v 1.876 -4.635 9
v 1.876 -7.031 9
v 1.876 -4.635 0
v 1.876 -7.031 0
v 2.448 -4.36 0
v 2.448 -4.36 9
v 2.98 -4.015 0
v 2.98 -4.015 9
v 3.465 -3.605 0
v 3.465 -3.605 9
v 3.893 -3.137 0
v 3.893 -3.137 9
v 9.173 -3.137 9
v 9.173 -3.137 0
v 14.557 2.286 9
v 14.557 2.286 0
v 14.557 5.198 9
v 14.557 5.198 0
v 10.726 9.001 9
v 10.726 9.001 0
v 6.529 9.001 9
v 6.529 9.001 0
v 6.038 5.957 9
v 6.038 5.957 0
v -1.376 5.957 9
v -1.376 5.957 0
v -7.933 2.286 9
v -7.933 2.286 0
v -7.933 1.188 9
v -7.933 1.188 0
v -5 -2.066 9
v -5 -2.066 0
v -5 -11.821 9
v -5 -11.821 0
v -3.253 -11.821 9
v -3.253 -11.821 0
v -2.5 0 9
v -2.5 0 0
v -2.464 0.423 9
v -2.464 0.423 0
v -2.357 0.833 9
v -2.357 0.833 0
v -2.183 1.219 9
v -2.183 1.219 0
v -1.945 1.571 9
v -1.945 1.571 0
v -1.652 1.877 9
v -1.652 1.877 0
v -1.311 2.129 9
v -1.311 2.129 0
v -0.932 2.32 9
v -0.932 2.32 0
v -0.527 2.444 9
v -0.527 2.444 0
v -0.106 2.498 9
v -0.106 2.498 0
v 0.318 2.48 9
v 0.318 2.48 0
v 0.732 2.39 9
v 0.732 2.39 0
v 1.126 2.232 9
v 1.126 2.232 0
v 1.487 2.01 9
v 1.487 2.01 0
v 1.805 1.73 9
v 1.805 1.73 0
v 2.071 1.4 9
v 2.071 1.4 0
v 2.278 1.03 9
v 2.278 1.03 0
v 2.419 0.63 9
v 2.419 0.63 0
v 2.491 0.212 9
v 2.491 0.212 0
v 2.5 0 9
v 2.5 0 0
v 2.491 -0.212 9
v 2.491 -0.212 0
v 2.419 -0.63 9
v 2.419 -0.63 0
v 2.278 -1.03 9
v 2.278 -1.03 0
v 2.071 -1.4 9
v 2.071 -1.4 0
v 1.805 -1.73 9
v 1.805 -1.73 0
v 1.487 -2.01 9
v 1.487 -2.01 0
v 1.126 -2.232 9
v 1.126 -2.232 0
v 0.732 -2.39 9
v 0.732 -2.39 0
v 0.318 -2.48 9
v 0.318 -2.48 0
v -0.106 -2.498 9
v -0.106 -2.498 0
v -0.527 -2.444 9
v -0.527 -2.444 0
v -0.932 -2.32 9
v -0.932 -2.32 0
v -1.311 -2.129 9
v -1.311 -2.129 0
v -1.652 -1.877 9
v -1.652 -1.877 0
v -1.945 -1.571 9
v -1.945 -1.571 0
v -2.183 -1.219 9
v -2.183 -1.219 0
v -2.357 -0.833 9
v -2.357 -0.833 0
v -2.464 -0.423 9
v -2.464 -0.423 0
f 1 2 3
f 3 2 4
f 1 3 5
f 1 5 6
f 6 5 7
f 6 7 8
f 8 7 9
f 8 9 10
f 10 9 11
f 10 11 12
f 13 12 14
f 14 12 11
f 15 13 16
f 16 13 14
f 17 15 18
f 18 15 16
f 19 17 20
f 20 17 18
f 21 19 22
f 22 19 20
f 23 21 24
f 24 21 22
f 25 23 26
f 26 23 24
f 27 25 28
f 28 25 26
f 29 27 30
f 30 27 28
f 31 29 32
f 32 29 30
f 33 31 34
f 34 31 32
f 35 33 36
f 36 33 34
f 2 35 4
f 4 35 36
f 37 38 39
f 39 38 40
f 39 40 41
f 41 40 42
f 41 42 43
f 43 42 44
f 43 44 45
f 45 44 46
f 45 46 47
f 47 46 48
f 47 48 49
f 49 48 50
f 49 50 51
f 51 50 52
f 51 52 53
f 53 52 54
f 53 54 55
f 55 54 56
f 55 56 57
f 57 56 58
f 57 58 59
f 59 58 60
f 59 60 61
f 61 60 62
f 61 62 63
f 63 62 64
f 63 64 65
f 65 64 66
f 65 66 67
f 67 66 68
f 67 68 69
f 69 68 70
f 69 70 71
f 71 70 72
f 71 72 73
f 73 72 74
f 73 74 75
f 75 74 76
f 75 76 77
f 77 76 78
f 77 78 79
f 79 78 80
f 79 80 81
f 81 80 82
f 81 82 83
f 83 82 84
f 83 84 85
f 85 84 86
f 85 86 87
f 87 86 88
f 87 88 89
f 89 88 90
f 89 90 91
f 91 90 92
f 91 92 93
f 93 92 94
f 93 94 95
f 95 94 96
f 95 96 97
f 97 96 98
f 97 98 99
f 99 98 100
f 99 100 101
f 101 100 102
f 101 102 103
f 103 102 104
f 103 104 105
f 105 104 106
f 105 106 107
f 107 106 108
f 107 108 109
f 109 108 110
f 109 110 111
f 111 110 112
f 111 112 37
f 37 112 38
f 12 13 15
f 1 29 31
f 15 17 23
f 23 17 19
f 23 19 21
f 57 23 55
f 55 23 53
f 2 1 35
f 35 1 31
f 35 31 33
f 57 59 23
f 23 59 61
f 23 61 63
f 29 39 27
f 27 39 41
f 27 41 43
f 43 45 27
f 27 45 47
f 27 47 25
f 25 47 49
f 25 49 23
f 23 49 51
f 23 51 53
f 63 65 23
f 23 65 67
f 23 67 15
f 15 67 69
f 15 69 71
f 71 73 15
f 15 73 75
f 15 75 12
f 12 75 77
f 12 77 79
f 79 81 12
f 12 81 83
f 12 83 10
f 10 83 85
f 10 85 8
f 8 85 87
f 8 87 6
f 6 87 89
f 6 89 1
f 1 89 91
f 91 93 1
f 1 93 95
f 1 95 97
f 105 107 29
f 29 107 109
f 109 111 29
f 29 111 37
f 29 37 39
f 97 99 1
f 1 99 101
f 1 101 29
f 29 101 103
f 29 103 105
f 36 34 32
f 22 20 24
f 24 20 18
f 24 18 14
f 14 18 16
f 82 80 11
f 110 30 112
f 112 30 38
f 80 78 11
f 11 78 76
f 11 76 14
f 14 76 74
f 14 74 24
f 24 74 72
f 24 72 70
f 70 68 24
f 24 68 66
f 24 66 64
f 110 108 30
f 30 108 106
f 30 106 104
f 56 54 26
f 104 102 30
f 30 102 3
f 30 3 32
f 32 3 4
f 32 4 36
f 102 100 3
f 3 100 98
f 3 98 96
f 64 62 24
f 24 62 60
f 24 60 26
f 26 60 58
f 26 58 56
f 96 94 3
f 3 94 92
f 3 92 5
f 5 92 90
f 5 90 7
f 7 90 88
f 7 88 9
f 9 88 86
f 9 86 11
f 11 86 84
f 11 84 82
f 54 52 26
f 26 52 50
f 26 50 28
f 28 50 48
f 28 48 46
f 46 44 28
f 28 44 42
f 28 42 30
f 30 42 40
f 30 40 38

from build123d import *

# Parameters (mm, degrees)
SKETCH_1_R      = 2.5
EXTRUDE_1_DEPTH = 9


with BuildPart() as part:
    # 스케치1 → 보스-돌출1 (new body)
    with BuildSketch(Plane.XY):
        with BuildLine():
            Line((-7.933325128, 1.188242905), (-5, -2.066412243))
            Line((-5, -2.066412243), (-5, -11.820871263))
            Line((-5, -11.820871263), (-3.253479839, -11.820871263))
            Line((-3.253479839, -11.820871263), (1.87605446, -7.031414053))
            Line((1.87605446, -7.031414053), (1.87605446, -4.634697365))
            ThreePointArc((1.87605446, -4.634697365), (2.980195691, -4.014776911), (3.893195608, -3.13736003))
            Line((3.893195608, -3.13736003), (9.172978659, -3.13736003))
            Line((9.172978659, -3.13736003), (14.557074242, 2.286312605))
            Line((14.557074242, 2.286312605), (14.557074242, 5.198022376))
            Line((14.557074242, 5.198022376), (10.725649804, 9.001488547))
            Line((10.725649804, 9.001488547), (6.528593017, 9.001488547))
            Line((6.528593017, 9.001488547), (6.037882178, 5.957406269))
            Line((6.037882178, 5.957406269), (-1.376355668, 5.957406269))
            Line((-1.376355668, 5.957406269), (-7.933325128, 2.286312605))
            Line((-7.933325128, 2.286312605), (-7.933325128, 1.188242905))
        make_face()
        Circle(SKETCH_1_R, mode=Mode.SUBTRACT)
    extrude(amount=EXTRUDE_1_DEPTH)


solid = part.part
